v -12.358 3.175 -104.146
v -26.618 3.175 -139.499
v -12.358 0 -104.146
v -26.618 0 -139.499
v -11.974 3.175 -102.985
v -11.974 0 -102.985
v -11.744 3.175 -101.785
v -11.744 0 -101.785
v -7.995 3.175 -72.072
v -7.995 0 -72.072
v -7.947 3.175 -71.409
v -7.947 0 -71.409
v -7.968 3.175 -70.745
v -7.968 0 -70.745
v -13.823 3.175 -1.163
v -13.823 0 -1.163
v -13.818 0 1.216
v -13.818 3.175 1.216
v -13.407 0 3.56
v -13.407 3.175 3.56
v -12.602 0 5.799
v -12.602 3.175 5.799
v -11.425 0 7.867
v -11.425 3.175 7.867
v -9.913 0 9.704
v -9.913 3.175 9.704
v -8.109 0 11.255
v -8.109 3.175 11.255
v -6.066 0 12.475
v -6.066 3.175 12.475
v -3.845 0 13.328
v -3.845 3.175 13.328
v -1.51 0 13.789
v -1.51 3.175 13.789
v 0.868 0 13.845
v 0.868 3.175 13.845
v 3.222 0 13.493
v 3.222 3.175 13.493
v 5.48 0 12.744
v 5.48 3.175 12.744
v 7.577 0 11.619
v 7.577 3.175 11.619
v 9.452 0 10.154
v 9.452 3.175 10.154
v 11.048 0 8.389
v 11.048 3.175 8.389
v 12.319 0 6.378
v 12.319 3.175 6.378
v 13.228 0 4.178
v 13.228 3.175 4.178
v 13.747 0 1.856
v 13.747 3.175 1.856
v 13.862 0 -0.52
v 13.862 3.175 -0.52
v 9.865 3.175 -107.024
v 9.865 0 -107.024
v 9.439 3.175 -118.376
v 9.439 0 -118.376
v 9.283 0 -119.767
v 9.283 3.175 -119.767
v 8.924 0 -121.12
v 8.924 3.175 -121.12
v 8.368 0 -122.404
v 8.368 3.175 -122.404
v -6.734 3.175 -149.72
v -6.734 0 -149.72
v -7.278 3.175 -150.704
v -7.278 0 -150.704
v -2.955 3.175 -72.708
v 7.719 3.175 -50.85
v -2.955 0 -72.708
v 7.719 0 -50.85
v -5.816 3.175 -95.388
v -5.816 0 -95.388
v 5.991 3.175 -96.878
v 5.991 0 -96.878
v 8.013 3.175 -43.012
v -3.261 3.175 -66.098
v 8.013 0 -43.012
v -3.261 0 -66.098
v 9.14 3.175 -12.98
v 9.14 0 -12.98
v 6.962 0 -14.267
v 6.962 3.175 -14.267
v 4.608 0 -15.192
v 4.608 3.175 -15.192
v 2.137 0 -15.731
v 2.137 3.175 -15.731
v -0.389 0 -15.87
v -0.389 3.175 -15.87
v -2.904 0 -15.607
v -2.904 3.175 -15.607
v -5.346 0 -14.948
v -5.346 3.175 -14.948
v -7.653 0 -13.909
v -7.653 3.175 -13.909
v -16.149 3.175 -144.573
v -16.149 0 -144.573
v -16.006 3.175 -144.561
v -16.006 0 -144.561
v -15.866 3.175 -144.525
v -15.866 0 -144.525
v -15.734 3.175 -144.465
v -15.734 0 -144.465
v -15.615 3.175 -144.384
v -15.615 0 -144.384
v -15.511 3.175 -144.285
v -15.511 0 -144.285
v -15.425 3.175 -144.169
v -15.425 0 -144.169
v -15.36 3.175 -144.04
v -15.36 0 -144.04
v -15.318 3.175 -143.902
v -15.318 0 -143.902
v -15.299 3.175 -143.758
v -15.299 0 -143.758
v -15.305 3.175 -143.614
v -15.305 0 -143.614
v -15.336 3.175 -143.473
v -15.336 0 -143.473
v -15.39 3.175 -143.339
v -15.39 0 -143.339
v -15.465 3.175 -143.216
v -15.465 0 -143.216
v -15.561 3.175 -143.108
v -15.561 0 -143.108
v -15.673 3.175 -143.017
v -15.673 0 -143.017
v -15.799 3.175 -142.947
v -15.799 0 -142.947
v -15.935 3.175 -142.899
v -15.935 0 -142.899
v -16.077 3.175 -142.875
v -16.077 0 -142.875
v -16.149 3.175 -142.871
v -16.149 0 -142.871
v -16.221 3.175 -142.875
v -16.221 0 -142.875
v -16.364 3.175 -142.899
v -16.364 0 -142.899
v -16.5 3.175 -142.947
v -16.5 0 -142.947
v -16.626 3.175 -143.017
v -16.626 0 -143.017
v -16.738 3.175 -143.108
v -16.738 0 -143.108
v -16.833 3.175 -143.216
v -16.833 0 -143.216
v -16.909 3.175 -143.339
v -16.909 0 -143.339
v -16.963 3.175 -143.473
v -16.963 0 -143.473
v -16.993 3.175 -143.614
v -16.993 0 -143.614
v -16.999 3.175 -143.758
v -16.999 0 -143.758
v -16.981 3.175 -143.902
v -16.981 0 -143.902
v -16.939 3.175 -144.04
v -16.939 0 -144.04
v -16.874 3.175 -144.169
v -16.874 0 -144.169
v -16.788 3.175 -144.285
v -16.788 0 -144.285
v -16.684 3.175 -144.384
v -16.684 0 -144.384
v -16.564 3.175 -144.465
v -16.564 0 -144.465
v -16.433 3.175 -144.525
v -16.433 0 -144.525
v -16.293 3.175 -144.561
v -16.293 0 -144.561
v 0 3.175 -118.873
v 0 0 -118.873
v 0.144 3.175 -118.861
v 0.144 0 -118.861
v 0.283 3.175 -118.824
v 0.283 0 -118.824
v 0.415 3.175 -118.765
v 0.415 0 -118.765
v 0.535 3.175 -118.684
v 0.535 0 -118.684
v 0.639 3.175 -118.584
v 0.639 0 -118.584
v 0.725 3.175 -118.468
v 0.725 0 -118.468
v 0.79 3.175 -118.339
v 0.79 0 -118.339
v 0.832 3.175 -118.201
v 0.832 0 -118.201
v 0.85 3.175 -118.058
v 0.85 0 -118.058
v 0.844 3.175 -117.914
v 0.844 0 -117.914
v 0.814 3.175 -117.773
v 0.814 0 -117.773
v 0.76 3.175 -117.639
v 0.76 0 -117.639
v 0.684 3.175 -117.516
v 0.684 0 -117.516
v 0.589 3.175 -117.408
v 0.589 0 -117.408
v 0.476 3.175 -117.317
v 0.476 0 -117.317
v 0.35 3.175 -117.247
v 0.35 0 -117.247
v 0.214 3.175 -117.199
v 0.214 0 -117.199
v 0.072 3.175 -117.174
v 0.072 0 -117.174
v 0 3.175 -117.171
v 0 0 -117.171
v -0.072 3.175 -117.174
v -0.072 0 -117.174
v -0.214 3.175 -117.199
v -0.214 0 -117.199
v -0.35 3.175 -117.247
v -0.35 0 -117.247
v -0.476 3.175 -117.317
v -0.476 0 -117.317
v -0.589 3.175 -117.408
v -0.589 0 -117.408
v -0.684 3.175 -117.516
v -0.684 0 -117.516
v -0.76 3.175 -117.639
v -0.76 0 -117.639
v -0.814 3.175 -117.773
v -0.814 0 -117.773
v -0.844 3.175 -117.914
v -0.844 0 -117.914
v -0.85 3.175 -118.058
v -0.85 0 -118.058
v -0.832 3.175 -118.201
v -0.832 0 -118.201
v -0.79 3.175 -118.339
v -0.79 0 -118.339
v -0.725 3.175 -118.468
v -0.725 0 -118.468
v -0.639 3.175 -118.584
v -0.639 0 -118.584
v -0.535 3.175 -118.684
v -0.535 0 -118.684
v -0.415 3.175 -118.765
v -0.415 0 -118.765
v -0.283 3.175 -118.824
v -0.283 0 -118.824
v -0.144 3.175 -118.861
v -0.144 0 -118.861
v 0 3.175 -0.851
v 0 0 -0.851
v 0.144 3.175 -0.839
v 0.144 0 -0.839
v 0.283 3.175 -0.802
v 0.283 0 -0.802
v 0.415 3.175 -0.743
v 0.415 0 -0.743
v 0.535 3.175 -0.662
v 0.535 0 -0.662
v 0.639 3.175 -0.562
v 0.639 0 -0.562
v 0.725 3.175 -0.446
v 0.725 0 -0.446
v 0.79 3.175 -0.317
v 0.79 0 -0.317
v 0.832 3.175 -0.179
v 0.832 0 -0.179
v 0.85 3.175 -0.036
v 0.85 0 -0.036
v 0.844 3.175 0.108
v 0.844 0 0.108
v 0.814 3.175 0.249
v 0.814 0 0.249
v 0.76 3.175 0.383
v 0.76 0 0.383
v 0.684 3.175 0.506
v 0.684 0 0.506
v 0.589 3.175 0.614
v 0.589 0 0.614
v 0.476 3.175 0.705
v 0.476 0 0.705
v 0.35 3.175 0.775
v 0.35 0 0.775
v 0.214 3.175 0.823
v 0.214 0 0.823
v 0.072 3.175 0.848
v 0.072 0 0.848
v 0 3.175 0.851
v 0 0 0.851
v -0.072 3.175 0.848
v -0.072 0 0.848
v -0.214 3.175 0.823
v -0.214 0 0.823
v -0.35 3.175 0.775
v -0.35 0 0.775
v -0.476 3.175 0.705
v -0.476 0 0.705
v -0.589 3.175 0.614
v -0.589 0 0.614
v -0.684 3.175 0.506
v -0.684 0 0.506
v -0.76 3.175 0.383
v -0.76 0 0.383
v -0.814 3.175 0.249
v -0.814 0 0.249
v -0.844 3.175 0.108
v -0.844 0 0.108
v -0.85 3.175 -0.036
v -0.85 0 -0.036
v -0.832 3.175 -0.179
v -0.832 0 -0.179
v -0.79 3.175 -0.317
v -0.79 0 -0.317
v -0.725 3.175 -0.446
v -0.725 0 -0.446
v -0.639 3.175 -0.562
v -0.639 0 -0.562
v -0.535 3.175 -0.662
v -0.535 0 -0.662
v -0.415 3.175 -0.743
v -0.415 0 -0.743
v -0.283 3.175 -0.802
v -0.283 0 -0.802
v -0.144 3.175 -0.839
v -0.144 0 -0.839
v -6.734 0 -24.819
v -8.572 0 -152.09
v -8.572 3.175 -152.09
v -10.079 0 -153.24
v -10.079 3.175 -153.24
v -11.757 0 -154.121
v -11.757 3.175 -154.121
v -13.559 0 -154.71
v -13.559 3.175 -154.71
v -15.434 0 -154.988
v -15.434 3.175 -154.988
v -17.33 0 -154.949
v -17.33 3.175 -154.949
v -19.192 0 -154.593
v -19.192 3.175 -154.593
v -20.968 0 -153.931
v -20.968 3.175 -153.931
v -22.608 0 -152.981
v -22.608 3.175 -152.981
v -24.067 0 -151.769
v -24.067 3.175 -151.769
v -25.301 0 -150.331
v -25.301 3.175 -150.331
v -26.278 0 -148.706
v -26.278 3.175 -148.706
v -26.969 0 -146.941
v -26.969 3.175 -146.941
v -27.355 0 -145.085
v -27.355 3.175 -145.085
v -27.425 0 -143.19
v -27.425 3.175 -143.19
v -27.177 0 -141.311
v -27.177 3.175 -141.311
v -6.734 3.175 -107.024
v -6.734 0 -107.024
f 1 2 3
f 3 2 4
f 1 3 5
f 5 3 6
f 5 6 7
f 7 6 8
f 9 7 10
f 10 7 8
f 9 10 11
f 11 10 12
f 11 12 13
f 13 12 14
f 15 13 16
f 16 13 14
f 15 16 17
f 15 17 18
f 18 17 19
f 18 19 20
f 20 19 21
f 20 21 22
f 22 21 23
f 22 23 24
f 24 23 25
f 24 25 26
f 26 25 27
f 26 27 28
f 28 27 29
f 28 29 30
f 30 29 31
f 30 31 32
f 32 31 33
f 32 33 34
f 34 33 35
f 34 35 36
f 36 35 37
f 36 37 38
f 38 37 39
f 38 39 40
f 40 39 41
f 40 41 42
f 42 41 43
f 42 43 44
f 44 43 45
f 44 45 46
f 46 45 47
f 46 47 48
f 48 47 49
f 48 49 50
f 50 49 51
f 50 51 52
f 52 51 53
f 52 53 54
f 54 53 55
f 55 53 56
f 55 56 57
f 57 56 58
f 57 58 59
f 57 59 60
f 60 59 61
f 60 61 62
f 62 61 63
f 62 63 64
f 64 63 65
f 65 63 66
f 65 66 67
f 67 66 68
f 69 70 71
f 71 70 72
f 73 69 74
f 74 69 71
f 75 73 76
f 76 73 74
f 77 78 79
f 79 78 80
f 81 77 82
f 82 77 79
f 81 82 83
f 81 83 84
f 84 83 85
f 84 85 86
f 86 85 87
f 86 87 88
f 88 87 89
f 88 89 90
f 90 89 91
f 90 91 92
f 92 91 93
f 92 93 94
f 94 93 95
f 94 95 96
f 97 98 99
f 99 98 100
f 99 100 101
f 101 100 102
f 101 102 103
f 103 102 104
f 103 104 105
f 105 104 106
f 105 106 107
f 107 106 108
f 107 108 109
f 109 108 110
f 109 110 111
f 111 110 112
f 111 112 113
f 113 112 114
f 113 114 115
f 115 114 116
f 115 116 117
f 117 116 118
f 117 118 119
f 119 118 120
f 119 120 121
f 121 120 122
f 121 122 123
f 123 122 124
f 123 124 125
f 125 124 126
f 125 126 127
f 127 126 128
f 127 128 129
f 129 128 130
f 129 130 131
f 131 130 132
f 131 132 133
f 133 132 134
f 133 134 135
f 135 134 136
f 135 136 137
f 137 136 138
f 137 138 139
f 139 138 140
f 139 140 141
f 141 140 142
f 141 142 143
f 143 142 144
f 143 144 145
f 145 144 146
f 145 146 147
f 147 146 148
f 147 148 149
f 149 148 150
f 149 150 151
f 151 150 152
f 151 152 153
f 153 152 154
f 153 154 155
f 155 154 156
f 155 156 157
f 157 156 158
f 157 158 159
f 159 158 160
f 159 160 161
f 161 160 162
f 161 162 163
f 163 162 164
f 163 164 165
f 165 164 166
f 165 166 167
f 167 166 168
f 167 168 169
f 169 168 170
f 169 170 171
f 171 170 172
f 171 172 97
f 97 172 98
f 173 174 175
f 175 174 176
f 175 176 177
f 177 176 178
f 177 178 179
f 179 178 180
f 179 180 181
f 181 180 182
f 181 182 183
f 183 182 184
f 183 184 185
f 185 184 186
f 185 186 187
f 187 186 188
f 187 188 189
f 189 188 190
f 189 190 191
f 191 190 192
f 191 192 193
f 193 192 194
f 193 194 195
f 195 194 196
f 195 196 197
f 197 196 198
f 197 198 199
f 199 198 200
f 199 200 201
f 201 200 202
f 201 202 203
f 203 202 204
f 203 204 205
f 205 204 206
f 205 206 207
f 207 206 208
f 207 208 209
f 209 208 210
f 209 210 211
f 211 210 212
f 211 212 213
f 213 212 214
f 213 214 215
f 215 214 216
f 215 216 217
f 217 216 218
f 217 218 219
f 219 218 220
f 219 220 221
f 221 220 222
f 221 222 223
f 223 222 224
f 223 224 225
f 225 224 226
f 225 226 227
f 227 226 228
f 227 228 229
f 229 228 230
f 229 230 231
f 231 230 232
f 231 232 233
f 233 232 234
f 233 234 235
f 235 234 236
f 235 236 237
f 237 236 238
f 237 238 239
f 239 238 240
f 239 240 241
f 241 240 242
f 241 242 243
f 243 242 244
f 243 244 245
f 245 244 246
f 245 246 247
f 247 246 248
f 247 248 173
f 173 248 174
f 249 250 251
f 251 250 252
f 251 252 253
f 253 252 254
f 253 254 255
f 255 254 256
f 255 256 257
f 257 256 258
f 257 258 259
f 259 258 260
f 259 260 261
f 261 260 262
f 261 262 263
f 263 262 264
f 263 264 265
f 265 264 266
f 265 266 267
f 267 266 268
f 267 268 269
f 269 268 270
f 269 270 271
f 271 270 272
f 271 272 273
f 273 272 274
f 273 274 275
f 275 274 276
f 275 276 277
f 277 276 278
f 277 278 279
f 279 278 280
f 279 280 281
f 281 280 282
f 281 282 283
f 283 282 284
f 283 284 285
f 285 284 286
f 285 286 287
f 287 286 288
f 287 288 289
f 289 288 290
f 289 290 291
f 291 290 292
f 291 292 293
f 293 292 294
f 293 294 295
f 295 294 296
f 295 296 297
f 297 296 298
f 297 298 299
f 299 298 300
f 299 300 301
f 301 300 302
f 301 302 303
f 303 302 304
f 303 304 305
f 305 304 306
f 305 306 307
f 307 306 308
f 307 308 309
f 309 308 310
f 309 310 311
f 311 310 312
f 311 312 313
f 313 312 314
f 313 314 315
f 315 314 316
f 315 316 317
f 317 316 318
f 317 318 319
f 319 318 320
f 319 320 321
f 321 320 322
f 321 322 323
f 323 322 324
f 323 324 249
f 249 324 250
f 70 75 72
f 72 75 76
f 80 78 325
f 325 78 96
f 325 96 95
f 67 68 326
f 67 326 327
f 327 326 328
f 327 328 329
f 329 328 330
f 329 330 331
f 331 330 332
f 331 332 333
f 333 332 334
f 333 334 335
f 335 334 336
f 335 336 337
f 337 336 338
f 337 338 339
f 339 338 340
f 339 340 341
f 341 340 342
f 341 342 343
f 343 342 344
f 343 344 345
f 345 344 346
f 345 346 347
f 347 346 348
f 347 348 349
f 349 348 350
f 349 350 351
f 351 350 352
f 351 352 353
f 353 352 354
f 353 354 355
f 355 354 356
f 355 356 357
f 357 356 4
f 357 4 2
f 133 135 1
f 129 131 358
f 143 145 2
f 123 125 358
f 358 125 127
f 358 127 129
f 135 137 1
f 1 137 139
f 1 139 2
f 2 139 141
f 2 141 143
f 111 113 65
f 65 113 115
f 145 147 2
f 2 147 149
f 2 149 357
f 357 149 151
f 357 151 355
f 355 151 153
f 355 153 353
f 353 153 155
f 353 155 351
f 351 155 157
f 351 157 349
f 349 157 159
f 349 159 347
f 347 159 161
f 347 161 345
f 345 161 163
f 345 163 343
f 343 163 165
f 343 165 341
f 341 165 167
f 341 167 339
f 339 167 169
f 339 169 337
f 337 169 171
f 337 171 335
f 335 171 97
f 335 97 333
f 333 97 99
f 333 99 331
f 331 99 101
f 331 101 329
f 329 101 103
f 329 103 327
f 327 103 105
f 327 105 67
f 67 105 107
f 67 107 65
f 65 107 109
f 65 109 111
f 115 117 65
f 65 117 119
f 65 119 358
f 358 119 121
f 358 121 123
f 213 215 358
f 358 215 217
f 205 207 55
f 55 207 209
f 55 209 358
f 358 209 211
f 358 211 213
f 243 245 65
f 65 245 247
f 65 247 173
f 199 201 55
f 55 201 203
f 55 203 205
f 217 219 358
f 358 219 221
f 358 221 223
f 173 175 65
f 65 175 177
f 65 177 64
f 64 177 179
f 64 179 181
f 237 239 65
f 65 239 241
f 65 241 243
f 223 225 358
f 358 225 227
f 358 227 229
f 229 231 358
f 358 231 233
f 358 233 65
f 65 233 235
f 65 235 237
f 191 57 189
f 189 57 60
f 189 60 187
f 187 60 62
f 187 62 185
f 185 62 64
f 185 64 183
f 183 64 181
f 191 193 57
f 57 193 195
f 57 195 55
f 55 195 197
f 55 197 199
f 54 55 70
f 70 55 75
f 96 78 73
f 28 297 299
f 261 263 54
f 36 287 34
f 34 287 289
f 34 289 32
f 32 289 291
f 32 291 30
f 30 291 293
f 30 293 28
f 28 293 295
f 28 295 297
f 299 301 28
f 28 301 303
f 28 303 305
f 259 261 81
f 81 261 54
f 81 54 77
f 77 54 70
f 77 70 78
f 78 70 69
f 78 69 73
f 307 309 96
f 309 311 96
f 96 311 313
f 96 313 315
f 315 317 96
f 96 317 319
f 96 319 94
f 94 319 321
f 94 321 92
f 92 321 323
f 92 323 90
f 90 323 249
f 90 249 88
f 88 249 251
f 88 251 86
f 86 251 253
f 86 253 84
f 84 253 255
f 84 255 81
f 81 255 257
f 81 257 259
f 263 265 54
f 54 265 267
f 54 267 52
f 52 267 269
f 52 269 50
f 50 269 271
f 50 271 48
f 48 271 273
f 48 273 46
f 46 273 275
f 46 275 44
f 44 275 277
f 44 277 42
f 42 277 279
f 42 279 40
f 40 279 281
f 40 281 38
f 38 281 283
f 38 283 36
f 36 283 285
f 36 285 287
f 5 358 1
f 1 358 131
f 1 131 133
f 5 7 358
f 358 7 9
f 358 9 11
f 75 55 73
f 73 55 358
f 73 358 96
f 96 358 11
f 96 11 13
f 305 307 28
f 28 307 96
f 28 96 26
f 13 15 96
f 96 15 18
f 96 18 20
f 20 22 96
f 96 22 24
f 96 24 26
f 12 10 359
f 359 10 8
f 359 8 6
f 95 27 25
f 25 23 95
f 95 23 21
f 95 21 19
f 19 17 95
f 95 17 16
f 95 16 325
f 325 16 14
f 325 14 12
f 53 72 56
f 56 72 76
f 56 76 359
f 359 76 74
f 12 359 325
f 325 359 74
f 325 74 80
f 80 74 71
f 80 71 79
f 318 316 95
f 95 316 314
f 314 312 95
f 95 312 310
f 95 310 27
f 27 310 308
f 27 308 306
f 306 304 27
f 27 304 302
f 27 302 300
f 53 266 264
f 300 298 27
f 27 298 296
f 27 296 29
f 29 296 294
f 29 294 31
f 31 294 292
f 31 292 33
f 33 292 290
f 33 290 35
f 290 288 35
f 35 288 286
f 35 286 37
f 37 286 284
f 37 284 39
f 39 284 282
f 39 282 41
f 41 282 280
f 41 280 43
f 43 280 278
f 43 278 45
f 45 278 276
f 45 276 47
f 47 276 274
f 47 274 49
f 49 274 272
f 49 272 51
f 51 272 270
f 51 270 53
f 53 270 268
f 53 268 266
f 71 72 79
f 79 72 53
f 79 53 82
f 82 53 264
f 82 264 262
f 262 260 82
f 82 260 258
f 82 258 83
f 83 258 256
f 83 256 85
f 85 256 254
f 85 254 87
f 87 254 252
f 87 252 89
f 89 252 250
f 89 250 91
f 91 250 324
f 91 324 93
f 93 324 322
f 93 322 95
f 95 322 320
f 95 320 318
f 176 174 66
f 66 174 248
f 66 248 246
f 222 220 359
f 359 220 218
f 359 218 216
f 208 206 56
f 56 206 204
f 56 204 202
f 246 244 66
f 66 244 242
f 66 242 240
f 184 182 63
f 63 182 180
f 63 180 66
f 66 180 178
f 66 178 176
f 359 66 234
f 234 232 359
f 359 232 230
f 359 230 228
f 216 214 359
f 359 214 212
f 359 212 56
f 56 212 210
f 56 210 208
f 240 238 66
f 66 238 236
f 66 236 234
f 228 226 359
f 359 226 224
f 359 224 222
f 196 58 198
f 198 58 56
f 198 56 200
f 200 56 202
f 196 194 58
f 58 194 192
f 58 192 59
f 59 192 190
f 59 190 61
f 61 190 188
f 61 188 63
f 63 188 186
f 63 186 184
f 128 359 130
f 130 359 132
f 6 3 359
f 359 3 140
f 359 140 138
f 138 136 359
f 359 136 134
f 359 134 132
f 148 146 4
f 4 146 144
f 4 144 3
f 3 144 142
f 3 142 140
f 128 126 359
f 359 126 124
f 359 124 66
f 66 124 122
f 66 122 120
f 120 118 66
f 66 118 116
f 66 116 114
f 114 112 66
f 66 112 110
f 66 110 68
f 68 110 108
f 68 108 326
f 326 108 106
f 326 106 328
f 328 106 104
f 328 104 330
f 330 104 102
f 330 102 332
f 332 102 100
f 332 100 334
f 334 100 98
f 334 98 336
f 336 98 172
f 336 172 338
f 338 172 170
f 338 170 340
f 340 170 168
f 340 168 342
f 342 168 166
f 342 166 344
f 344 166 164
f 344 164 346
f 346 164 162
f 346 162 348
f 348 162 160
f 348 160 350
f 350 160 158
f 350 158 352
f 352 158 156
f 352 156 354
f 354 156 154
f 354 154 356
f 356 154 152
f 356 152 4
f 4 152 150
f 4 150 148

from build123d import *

# Parameters (mm, degrees)
SKETCH1_R           = 0.8509
BOSS_EXTRUDE3_DEPTH = 3.175


with BuildPart() as part:
    # Sketch1 → Boss-Extrude3 (new body)
    # profile 1 of 2: a face of its own
    with BuildSketch(Plane(origin=(0, 0, 0), x_dir=(1, 0, 0), z_dir=(0, 1, 0))):
        with BuildLine():
            Line((-26.618355099, 139.499410737), (-12.357546713, 104.145756125))
            ThreePointArc((-12.357546713, 104.145756125), (-11.974349365, 102.985269848), (-11.743579527, 101.785139069))
            Line((-11.743579527, 101.785139069), (-7.99527824, 72.072064446))
            ThreePointArc((-7.99527824, 72.072064446), (-7.946716363, 71.409174189), (-7.967711413, 70.744839217))
            Line((-7.967711413, 70.744839217), (-13.823023592, 1.163211045))
            ThreePointArc((-13.823023592, 1.163211045), (-0.322101588, -13.868139447), (13.862122414, 0.520195482))
            Line((13.862122414, 0.520195482), (11.138065029, 73.110631708))
            Line((11.138065029, 73.110631708), (9.439411602, 118.376195482))
            ThreePointArc((9.439411602, 118.376195482), (9.128634942, 120.450134843), (8.367932415, 122.40439641))
            Line((8.367932415, 122.40439641), (-7.278206254, 150.703639796))
            ThreePointArc((-7.278206254, 150.703639796), (-21.808106397, 153.490299925), (-26.618355099, 139.499410737))
        make_face()
        with Locations(Location((0, 0, 0), (0, 0, 270))):
            Circle(SKETCH1_R, mode=Mode.SUBTRACT)
        with Locations(Location((0, 118.021968393, 0), (0, 0, 270))):
            Circle(SKETCH1_R, mode=Mode.SUBTRACT)
        with Locations(Location((-16.149303345, 143.722372767, 0), (0, 0, 270))):
            Circle(SKETCH1_R, mode=Mode.SUBTRACT)
        with BuildLine():
            ThreePointArc((-2.955223154, 72.707866873), (-2.867811775, 71.514664411), (-2.905602865, 70.318861461))
            Line((-2.905602865, 70.318861461), (-7.652524964, 13.908791704))
            ThreePointArc((-7.652524964, 13.908791704), (0.876701263, 15.850773479), (9.139736464, 12.98001704))
            Line((9.139736464, 12.98001704), (5.991360589, 96.877654221))
            Line((5.991360589, 96.877654221), (-5.816334076, 95.388114762))
            Line((-5.816334076, 95.388114762), (-2.955223154, 72.707866873))
        make_face(mode=Mode.SUBTRACT)
    # profile 2 of 2: a face of its own
    with BuildSketch(Plane(origin=(0, 0, 0), x_dir=(1, 0, 0), z_dir=(0, 1, 0))):
        with BuildLine():
            Line((7.71861106, 50.850039017), (-2.955223154, 72.707866873))
            ThreePointArc((-2.955223154, 72.707866873), (-2.867811775, 71.514664411), (-2.905602865, 70.318861461))
            Line((-2.905602865, 70.318861461), (-3.260786549, 66.098034587))
            Line((-3.260786549, 66.098034587), (8.012738289, 43.012163072))
            Line((8.012738289, 43.012163072), (7.71861106, 50.850039017))
        make_face()
    extrude(amount=BOSS_EXTRUDE3_DEPTH)


solid = part.part
